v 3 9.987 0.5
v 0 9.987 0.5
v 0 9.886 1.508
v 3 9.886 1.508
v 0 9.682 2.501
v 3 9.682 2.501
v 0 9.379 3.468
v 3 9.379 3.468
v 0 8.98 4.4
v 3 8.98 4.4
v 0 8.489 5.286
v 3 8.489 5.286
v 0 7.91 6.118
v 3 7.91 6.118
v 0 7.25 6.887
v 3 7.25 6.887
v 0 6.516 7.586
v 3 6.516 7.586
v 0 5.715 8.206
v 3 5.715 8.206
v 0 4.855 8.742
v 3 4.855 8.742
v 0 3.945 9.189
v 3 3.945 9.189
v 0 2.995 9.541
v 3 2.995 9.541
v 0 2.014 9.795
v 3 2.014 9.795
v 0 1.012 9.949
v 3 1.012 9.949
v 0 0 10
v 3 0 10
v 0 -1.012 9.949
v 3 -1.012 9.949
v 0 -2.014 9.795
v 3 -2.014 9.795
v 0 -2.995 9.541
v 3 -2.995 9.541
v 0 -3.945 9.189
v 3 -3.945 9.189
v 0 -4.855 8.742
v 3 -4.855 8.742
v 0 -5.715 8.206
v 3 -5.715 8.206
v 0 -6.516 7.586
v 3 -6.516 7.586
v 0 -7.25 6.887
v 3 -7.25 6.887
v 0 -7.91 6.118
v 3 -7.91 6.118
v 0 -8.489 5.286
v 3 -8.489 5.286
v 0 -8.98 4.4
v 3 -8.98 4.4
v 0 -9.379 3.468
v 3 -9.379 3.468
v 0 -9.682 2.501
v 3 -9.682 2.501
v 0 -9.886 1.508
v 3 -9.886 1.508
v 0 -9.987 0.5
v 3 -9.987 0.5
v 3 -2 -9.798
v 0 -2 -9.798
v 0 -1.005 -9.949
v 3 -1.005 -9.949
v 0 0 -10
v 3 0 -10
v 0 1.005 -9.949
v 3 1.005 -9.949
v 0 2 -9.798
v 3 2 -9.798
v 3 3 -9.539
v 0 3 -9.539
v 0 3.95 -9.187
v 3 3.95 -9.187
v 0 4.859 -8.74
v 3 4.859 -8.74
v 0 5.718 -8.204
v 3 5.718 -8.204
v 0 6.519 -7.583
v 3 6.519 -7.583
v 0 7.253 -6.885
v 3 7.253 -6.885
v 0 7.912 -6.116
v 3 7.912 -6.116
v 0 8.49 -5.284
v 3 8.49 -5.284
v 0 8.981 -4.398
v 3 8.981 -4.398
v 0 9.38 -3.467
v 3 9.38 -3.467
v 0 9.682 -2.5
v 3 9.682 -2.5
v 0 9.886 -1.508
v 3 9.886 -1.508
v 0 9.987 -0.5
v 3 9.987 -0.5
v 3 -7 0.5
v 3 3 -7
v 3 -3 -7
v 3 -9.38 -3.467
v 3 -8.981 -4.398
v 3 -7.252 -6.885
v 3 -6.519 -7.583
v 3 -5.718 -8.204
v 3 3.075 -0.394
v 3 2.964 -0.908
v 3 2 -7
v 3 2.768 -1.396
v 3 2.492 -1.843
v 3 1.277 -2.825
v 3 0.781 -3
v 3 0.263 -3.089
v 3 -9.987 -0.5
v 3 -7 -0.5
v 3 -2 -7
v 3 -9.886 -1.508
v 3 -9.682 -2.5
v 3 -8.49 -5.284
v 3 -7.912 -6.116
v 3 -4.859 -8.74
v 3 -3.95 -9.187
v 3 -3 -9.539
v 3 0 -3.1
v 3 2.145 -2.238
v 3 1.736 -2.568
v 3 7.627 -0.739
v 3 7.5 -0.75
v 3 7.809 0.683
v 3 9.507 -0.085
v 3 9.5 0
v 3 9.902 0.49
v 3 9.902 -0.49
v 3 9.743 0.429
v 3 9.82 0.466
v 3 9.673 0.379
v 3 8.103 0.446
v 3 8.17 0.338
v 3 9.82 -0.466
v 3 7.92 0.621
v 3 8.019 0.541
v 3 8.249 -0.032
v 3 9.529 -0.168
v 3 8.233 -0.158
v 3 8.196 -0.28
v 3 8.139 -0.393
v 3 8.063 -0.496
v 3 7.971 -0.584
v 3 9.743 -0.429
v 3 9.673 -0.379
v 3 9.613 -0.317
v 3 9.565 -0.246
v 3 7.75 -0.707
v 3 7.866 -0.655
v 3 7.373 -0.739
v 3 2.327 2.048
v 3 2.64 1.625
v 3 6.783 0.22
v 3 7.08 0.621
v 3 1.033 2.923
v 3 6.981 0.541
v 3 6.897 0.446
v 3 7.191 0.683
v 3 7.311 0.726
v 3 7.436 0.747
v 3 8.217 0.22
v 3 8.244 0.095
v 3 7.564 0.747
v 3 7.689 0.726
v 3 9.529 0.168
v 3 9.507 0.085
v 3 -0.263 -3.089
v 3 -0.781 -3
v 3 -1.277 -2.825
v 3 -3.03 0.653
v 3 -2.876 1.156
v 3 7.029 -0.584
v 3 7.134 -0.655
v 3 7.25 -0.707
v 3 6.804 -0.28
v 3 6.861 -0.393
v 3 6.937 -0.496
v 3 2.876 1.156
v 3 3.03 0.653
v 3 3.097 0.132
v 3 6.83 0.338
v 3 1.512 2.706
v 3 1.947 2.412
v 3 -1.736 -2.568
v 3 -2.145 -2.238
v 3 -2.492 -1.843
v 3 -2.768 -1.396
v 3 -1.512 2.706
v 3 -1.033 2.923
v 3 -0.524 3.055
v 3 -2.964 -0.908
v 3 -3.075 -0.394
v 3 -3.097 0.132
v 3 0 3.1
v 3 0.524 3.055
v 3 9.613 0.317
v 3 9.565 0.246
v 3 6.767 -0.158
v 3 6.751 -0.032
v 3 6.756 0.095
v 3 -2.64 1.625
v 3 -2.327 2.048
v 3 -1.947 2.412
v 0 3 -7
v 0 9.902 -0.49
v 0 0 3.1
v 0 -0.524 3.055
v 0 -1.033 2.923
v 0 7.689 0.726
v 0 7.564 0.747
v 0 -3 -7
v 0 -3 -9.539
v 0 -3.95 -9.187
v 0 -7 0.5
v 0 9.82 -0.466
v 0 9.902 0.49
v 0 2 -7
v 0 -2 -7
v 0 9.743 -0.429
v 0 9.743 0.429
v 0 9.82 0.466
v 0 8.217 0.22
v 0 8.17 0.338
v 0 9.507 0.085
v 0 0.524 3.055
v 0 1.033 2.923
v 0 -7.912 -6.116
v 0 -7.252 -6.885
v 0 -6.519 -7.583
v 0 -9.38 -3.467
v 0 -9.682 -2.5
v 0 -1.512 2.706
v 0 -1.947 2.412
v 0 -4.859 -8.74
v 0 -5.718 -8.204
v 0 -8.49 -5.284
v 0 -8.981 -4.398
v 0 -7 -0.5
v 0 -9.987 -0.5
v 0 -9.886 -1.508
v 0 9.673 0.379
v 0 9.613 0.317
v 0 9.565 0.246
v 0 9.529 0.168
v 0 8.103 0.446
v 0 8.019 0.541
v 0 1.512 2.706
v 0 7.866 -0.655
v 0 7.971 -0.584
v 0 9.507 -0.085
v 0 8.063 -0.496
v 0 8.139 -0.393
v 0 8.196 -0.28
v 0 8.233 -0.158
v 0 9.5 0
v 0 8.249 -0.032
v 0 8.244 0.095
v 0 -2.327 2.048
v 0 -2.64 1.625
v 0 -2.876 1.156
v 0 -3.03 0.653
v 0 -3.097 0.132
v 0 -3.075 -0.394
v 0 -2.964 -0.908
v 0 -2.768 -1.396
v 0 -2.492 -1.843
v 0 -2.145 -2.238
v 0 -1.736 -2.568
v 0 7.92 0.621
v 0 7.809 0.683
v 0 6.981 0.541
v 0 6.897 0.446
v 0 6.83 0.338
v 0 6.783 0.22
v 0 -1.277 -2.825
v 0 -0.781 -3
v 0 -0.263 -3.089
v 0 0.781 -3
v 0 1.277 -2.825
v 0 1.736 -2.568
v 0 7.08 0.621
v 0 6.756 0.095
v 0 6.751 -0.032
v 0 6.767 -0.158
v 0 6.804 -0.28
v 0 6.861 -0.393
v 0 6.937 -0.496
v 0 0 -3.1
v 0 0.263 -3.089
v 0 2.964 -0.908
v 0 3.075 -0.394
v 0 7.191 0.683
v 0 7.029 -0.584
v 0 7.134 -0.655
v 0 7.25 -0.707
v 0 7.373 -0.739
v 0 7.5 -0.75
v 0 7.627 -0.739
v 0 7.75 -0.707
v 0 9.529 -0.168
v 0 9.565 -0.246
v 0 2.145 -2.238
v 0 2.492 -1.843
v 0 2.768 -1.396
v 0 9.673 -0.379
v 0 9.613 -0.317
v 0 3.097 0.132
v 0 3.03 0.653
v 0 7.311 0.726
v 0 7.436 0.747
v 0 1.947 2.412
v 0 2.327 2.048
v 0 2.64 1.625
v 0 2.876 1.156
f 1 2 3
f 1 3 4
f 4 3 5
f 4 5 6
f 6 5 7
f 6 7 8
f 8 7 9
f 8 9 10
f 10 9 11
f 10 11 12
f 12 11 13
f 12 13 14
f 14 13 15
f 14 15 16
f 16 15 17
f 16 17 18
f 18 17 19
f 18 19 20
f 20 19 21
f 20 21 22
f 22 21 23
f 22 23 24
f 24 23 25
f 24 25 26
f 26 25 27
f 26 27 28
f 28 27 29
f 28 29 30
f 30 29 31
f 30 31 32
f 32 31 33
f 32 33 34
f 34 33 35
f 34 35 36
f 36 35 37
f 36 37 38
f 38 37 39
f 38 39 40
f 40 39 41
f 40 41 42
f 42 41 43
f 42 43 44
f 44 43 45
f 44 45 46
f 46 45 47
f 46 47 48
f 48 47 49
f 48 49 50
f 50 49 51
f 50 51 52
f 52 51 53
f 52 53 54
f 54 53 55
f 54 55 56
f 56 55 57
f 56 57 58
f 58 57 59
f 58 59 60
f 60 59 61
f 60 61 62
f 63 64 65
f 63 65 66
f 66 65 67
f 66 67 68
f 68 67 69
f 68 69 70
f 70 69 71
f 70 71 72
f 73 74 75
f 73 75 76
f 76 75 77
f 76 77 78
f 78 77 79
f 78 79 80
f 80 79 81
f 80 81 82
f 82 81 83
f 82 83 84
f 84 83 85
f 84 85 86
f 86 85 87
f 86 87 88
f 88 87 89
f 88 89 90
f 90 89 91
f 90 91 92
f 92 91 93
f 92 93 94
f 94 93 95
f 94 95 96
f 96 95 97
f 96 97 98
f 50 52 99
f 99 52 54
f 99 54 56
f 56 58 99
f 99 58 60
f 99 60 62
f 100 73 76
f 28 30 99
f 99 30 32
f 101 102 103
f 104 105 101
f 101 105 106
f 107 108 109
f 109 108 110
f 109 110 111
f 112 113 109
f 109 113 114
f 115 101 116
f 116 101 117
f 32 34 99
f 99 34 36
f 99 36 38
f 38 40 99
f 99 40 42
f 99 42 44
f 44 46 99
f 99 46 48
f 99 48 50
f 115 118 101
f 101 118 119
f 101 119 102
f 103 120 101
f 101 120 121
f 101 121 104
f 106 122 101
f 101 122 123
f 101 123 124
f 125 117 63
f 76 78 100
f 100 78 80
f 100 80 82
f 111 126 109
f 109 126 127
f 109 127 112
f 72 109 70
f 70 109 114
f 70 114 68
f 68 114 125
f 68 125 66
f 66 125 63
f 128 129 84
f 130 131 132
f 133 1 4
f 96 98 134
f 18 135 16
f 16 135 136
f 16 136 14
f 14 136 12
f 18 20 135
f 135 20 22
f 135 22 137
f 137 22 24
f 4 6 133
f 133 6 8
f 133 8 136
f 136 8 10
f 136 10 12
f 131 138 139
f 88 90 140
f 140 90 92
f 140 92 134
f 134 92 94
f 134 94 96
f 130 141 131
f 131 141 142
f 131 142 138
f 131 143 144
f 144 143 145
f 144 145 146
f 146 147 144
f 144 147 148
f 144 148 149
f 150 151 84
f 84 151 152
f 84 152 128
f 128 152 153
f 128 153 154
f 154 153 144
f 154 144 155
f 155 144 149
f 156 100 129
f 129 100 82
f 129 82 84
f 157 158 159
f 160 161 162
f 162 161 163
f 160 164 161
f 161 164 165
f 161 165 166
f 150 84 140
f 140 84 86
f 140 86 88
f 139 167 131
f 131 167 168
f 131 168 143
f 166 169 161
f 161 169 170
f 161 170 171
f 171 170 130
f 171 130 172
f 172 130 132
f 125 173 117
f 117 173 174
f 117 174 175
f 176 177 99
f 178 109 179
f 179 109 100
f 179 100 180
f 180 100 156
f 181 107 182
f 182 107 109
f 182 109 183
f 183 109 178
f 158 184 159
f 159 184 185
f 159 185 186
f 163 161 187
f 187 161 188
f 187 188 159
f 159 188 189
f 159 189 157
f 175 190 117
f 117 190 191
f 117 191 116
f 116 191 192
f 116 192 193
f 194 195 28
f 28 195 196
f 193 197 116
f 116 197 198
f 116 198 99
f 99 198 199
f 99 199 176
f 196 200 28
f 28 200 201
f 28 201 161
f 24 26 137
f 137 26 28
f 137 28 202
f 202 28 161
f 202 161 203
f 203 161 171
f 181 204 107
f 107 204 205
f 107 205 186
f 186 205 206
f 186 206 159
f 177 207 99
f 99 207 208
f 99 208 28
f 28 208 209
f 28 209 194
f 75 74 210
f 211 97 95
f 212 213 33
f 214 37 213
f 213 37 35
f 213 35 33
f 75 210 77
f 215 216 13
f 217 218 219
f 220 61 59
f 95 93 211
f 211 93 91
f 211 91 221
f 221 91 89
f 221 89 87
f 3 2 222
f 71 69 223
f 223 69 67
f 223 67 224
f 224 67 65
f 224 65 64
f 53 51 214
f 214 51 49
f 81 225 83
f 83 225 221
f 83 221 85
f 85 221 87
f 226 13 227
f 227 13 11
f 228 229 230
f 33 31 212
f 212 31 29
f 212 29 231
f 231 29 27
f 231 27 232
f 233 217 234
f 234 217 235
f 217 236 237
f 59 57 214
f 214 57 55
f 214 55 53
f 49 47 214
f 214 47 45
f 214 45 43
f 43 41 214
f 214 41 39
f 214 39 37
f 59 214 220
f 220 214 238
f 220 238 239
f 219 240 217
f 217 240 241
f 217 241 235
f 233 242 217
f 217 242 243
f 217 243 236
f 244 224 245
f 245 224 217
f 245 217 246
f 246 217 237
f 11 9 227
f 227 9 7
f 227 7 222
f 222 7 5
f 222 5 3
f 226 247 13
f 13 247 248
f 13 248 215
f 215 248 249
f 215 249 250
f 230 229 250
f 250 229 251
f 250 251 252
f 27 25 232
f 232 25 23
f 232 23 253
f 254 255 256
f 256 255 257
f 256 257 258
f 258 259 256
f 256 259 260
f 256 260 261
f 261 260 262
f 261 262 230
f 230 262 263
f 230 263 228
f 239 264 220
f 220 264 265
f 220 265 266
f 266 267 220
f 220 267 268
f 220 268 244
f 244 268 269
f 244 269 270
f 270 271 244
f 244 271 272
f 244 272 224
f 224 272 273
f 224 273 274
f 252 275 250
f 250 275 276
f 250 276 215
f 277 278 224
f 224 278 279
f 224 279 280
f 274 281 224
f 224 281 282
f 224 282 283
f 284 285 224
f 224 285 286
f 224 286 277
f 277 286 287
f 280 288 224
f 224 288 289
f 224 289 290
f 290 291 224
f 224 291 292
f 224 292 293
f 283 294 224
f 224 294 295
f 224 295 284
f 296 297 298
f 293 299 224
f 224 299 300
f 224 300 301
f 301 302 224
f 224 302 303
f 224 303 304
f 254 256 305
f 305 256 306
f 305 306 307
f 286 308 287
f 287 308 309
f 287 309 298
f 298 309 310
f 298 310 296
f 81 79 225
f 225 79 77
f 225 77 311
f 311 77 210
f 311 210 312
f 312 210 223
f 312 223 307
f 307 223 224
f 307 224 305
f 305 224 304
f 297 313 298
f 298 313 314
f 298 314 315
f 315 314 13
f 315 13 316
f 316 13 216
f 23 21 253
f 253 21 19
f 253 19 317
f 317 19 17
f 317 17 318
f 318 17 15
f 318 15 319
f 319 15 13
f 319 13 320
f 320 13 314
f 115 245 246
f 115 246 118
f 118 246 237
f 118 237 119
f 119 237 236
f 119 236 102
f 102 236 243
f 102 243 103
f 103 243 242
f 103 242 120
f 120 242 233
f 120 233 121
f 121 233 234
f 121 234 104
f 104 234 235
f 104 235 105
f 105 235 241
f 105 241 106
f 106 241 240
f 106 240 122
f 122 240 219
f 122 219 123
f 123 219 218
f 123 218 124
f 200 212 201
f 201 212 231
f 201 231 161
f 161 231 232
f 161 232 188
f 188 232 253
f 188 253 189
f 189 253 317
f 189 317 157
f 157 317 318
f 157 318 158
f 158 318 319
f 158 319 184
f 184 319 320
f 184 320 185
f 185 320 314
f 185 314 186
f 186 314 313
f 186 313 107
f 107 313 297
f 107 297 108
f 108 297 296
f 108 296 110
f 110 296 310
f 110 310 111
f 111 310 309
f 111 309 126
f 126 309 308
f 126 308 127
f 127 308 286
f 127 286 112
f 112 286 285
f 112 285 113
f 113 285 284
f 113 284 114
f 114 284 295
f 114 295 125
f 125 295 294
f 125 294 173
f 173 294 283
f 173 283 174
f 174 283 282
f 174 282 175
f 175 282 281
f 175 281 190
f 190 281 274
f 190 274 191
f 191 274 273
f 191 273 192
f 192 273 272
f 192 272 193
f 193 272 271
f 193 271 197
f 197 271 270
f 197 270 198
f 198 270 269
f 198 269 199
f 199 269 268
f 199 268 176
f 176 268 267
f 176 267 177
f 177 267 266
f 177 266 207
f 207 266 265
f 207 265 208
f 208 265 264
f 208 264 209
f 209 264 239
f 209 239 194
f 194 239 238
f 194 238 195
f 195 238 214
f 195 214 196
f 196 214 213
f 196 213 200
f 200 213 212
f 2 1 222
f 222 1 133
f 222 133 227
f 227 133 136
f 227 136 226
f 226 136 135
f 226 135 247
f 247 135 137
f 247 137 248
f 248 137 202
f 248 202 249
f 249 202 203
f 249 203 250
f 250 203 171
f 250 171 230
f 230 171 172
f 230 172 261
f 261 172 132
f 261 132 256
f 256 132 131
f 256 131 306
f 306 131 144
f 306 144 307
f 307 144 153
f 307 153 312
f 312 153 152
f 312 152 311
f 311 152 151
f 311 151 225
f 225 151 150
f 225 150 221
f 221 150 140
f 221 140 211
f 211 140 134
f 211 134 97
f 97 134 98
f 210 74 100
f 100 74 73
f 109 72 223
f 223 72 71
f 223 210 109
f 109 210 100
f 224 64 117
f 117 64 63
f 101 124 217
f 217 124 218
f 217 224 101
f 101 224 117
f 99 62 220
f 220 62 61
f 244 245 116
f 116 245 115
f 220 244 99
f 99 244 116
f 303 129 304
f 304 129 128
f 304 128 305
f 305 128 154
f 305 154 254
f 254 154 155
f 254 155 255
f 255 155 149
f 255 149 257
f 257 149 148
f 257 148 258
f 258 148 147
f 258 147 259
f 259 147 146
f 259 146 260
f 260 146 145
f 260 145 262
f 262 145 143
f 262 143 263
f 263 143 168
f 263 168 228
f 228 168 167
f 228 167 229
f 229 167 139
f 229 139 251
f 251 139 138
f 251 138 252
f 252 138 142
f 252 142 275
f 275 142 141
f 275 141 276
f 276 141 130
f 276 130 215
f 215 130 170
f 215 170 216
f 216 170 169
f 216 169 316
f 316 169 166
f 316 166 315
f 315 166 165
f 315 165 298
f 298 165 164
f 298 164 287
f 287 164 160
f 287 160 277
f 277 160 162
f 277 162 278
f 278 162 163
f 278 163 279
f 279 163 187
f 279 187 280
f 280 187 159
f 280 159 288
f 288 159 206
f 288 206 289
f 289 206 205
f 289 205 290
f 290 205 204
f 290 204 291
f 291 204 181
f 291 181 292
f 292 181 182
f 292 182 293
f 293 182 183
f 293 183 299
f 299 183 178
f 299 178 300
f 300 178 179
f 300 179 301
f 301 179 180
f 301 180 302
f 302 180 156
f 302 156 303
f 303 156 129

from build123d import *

# Parameters (mm, degrees)
SKETCH1_R           = 10
SKETCH1_R_2         = 3.1
BOSS_EXTRUDE1_DEPTH = 3
SKETCH2_R           = 0.75
SKETCH2_R_2         = 0.5
SKETCH2_W           = 5.709686215
SKETCH2_H           = 1
SKETCH2_W_2         = 1
SKETCH2_H_2         = 4.505813393
CUT_EXTRUDE1_DEPTH  = 3


with BuildPart() as part:
    # Sketch1 → Boss-Extrude1 (new body)
    with BuildSketch(Plane(origin=(0, 0, 0), x_dir=(0, 0, -1), z_dir=(1, 0, 0))):
        Circle(SKETCH1_R)
        Circle(SKETCH1_R_2, mode=Mode.SUBTRACT)
    extrude(amount=BOSS_EXTRUDE1_DEPTH)

    # Sketch2 → Cut-Extrude1 (cut)
    with BuildSketch(Plane(origin=(3, 0, 0), x_dir=(0, 0, -1), z_dir=(1, 0, 0))):
        with Locations((0, 7.5)):
            Circle(SKETCH2_R)
        with Locations((0, 10)):
            Circle(SKETCH2_R_2)
        with Locations((9.854843108, 2.5)):
            Rectangle(SKETCH2_W, SKETCH2_H)
        with Locations((9.854843108, -2.5)):
            Rectangle(SKETCH2_W, SKETCH2_H)
        with Locations((0, -9.252906697)):
            Rectangle(SKETCH2_W_2, SKETCH2_H_2)
    extrude(amount=-CUT_EXTRUDE1_DEPTH, mode=Mode.SUBTRACT)


solid = part.part
